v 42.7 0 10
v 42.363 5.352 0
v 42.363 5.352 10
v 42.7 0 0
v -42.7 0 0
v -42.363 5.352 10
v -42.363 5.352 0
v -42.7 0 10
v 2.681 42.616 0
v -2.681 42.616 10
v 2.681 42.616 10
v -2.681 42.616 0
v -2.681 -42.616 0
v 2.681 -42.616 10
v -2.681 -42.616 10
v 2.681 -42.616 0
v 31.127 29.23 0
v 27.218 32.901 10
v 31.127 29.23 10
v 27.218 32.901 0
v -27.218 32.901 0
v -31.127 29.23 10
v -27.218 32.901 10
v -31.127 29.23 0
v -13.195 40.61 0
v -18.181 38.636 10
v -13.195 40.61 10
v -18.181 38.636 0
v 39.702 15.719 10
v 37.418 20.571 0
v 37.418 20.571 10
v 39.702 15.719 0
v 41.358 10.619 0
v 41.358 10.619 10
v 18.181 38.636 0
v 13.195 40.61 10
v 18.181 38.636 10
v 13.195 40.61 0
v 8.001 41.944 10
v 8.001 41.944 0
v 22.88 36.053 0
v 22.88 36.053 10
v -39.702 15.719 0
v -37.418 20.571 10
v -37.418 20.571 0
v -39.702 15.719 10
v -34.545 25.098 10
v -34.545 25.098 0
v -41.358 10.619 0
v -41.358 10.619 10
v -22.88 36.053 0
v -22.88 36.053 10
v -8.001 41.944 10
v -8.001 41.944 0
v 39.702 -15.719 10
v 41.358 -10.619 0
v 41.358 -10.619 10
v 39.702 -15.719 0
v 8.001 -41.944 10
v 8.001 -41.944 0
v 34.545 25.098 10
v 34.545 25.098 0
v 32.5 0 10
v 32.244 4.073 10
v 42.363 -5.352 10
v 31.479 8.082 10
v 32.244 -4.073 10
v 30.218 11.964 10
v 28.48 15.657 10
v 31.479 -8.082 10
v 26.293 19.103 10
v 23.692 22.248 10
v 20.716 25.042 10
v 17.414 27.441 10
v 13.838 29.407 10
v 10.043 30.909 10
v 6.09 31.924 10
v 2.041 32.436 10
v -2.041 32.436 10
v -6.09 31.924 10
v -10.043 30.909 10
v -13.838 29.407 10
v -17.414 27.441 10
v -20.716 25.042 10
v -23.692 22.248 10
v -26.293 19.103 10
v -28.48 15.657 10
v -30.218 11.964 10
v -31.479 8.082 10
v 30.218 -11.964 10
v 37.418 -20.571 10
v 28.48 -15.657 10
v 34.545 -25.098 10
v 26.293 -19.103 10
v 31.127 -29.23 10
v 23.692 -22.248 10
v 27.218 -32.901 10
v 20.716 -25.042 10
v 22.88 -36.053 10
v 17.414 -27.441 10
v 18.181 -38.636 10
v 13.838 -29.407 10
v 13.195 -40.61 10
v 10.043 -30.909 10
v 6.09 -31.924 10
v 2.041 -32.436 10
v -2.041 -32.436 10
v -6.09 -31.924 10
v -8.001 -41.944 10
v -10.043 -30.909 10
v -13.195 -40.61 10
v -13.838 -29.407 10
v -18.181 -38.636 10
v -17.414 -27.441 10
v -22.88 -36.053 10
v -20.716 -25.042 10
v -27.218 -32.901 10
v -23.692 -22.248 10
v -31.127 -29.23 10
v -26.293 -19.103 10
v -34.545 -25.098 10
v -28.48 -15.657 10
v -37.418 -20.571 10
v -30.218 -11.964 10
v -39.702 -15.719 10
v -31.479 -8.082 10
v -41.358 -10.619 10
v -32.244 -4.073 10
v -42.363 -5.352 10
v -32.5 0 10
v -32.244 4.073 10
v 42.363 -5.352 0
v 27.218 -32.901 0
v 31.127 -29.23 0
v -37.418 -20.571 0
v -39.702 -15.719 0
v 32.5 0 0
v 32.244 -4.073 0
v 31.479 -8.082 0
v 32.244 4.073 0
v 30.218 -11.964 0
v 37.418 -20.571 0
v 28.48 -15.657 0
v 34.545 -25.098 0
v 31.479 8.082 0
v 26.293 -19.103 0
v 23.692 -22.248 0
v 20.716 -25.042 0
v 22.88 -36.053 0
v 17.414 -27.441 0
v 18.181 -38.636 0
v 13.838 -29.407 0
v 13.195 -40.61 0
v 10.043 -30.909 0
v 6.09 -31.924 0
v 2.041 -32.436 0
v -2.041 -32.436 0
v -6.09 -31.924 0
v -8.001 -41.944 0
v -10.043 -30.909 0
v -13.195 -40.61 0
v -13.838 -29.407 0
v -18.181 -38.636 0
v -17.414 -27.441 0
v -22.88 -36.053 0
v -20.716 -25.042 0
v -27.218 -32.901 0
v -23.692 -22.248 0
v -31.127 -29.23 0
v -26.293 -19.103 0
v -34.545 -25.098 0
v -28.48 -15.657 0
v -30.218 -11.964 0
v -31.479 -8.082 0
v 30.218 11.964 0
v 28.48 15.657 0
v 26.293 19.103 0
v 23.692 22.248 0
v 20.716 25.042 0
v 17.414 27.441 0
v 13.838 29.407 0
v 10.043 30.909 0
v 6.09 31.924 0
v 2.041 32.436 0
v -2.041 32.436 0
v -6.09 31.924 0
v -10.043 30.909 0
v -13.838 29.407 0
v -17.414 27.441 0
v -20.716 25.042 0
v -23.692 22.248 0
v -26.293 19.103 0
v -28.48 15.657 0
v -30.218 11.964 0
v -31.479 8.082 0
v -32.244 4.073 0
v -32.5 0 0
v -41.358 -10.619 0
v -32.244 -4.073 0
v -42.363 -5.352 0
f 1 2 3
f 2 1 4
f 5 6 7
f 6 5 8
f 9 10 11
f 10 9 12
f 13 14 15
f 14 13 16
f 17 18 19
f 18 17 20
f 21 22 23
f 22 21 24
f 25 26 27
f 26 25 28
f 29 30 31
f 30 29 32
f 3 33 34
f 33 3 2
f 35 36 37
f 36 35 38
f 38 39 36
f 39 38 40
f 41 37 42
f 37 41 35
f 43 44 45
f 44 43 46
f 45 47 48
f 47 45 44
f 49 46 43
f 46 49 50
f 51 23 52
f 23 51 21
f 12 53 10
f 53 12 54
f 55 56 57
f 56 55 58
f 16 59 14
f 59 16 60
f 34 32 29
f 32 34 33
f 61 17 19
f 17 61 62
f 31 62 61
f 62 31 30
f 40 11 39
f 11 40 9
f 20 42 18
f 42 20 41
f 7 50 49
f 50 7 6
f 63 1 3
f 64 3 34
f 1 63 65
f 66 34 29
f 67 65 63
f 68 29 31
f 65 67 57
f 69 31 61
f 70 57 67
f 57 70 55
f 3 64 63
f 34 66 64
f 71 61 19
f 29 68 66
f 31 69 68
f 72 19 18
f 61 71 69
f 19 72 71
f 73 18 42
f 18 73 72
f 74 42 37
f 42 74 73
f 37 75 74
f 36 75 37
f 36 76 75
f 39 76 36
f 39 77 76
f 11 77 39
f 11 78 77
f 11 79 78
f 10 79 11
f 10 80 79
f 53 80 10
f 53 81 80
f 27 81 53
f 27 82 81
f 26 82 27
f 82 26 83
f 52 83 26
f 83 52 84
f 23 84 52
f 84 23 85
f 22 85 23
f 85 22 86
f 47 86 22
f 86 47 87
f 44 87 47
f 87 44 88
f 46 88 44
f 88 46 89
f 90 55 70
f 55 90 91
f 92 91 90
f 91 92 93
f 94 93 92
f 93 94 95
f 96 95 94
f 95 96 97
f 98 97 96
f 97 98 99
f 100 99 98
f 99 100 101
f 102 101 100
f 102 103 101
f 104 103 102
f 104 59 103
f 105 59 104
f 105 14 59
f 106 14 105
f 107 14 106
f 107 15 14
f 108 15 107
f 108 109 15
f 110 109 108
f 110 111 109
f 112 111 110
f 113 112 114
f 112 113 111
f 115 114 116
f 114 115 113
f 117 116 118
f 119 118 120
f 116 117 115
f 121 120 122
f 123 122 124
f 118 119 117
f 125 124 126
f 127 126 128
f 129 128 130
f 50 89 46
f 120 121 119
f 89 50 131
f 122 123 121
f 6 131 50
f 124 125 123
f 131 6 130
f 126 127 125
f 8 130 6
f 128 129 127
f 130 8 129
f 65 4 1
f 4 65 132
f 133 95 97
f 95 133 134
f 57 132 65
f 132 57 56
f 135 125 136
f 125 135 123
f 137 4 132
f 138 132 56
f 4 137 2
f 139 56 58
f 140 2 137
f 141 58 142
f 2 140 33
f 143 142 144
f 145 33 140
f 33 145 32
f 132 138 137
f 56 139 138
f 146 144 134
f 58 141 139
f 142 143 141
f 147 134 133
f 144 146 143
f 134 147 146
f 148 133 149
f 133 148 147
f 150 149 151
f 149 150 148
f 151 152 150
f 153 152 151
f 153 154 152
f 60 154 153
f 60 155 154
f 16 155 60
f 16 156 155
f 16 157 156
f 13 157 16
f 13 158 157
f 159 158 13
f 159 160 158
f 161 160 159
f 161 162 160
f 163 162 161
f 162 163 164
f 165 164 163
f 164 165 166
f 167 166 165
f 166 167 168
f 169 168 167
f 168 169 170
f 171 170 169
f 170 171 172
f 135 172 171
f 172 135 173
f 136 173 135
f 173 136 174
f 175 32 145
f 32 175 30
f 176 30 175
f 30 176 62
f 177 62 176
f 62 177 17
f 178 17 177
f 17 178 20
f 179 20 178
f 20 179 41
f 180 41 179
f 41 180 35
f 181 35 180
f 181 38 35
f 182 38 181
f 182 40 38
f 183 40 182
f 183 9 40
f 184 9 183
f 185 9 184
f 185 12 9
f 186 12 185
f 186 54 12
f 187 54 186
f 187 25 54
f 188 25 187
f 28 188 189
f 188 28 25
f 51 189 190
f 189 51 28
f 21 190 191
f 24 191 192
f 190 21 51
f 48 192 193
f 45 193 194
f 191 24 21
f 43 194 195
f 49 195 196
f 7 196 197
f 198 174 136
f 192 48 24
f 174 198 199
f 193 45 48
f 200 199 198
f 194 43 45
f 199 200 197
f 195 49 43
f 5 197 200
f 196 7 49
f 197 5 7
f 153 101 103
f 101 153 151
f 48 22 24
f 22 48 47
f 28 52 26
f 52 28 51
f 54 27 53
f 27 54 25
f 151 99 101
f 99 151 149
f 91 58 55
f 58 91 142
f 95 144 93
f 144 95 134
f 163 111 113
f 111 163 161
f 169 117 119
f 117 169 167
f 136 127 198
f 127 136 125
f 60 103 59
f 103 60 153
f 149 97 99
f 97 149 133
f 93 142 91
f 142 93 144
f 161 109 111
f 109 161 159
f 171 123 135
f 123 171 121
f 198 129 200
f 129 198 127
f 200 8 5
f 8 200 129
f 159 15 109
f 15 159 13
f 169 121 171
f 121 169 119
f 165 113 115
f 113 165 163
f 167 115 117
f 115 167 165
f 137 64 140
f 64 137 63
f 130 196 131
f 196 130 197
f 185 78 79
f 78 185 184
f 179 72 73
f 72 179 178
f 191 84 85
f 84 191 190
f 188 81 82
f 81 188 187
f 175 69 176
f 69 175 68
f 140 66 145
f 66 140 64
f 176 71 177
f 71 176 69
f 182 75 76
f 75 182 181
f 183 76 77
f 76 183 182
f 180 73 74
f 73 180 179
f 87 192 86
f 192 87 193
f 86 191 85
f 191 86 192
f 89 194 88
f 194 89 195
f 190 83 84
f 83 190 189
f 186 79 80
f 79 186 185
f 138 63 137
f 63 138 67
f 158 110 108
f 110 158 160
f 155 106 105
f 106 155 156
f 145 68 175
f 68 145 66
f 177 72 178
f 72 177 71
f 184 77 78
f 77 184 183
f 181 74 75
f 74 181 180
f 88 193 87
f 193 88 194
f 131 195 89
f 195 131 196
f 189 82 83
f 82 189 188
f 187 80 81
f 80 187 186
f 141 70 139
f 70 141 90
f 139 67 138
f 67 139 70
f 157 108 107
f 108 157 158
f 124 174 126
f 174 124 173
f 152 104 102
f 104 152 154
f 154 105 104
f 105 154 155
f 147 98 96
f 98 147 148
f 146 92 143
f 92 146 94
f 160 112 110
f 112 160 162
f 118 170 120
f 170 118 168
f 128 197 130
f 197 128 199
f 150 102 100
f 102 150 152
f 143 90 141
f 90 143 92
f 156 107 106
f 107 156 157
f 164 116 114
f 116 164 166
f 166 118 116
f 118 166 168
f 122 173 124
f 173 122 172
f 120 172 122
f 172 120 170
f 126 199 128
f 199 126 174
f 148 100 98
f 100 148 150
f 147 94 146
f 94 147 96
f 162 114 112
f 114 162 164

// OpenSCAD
$fn = 50;


difference() {
	union() {
		translate(v = [0, 0, 0]) {
			rotate(a = [0, 0, 0]) {
				cylinder(h = 10, r = 42.7000000000);
			}
		}
	}
	union() {
		translate(v = [0, 0, 0]) {
			rotate(a = [0, 0, 0]) {
				cylinder(h = 10, r = 32.5000000000);
			}
		}
	}
}
